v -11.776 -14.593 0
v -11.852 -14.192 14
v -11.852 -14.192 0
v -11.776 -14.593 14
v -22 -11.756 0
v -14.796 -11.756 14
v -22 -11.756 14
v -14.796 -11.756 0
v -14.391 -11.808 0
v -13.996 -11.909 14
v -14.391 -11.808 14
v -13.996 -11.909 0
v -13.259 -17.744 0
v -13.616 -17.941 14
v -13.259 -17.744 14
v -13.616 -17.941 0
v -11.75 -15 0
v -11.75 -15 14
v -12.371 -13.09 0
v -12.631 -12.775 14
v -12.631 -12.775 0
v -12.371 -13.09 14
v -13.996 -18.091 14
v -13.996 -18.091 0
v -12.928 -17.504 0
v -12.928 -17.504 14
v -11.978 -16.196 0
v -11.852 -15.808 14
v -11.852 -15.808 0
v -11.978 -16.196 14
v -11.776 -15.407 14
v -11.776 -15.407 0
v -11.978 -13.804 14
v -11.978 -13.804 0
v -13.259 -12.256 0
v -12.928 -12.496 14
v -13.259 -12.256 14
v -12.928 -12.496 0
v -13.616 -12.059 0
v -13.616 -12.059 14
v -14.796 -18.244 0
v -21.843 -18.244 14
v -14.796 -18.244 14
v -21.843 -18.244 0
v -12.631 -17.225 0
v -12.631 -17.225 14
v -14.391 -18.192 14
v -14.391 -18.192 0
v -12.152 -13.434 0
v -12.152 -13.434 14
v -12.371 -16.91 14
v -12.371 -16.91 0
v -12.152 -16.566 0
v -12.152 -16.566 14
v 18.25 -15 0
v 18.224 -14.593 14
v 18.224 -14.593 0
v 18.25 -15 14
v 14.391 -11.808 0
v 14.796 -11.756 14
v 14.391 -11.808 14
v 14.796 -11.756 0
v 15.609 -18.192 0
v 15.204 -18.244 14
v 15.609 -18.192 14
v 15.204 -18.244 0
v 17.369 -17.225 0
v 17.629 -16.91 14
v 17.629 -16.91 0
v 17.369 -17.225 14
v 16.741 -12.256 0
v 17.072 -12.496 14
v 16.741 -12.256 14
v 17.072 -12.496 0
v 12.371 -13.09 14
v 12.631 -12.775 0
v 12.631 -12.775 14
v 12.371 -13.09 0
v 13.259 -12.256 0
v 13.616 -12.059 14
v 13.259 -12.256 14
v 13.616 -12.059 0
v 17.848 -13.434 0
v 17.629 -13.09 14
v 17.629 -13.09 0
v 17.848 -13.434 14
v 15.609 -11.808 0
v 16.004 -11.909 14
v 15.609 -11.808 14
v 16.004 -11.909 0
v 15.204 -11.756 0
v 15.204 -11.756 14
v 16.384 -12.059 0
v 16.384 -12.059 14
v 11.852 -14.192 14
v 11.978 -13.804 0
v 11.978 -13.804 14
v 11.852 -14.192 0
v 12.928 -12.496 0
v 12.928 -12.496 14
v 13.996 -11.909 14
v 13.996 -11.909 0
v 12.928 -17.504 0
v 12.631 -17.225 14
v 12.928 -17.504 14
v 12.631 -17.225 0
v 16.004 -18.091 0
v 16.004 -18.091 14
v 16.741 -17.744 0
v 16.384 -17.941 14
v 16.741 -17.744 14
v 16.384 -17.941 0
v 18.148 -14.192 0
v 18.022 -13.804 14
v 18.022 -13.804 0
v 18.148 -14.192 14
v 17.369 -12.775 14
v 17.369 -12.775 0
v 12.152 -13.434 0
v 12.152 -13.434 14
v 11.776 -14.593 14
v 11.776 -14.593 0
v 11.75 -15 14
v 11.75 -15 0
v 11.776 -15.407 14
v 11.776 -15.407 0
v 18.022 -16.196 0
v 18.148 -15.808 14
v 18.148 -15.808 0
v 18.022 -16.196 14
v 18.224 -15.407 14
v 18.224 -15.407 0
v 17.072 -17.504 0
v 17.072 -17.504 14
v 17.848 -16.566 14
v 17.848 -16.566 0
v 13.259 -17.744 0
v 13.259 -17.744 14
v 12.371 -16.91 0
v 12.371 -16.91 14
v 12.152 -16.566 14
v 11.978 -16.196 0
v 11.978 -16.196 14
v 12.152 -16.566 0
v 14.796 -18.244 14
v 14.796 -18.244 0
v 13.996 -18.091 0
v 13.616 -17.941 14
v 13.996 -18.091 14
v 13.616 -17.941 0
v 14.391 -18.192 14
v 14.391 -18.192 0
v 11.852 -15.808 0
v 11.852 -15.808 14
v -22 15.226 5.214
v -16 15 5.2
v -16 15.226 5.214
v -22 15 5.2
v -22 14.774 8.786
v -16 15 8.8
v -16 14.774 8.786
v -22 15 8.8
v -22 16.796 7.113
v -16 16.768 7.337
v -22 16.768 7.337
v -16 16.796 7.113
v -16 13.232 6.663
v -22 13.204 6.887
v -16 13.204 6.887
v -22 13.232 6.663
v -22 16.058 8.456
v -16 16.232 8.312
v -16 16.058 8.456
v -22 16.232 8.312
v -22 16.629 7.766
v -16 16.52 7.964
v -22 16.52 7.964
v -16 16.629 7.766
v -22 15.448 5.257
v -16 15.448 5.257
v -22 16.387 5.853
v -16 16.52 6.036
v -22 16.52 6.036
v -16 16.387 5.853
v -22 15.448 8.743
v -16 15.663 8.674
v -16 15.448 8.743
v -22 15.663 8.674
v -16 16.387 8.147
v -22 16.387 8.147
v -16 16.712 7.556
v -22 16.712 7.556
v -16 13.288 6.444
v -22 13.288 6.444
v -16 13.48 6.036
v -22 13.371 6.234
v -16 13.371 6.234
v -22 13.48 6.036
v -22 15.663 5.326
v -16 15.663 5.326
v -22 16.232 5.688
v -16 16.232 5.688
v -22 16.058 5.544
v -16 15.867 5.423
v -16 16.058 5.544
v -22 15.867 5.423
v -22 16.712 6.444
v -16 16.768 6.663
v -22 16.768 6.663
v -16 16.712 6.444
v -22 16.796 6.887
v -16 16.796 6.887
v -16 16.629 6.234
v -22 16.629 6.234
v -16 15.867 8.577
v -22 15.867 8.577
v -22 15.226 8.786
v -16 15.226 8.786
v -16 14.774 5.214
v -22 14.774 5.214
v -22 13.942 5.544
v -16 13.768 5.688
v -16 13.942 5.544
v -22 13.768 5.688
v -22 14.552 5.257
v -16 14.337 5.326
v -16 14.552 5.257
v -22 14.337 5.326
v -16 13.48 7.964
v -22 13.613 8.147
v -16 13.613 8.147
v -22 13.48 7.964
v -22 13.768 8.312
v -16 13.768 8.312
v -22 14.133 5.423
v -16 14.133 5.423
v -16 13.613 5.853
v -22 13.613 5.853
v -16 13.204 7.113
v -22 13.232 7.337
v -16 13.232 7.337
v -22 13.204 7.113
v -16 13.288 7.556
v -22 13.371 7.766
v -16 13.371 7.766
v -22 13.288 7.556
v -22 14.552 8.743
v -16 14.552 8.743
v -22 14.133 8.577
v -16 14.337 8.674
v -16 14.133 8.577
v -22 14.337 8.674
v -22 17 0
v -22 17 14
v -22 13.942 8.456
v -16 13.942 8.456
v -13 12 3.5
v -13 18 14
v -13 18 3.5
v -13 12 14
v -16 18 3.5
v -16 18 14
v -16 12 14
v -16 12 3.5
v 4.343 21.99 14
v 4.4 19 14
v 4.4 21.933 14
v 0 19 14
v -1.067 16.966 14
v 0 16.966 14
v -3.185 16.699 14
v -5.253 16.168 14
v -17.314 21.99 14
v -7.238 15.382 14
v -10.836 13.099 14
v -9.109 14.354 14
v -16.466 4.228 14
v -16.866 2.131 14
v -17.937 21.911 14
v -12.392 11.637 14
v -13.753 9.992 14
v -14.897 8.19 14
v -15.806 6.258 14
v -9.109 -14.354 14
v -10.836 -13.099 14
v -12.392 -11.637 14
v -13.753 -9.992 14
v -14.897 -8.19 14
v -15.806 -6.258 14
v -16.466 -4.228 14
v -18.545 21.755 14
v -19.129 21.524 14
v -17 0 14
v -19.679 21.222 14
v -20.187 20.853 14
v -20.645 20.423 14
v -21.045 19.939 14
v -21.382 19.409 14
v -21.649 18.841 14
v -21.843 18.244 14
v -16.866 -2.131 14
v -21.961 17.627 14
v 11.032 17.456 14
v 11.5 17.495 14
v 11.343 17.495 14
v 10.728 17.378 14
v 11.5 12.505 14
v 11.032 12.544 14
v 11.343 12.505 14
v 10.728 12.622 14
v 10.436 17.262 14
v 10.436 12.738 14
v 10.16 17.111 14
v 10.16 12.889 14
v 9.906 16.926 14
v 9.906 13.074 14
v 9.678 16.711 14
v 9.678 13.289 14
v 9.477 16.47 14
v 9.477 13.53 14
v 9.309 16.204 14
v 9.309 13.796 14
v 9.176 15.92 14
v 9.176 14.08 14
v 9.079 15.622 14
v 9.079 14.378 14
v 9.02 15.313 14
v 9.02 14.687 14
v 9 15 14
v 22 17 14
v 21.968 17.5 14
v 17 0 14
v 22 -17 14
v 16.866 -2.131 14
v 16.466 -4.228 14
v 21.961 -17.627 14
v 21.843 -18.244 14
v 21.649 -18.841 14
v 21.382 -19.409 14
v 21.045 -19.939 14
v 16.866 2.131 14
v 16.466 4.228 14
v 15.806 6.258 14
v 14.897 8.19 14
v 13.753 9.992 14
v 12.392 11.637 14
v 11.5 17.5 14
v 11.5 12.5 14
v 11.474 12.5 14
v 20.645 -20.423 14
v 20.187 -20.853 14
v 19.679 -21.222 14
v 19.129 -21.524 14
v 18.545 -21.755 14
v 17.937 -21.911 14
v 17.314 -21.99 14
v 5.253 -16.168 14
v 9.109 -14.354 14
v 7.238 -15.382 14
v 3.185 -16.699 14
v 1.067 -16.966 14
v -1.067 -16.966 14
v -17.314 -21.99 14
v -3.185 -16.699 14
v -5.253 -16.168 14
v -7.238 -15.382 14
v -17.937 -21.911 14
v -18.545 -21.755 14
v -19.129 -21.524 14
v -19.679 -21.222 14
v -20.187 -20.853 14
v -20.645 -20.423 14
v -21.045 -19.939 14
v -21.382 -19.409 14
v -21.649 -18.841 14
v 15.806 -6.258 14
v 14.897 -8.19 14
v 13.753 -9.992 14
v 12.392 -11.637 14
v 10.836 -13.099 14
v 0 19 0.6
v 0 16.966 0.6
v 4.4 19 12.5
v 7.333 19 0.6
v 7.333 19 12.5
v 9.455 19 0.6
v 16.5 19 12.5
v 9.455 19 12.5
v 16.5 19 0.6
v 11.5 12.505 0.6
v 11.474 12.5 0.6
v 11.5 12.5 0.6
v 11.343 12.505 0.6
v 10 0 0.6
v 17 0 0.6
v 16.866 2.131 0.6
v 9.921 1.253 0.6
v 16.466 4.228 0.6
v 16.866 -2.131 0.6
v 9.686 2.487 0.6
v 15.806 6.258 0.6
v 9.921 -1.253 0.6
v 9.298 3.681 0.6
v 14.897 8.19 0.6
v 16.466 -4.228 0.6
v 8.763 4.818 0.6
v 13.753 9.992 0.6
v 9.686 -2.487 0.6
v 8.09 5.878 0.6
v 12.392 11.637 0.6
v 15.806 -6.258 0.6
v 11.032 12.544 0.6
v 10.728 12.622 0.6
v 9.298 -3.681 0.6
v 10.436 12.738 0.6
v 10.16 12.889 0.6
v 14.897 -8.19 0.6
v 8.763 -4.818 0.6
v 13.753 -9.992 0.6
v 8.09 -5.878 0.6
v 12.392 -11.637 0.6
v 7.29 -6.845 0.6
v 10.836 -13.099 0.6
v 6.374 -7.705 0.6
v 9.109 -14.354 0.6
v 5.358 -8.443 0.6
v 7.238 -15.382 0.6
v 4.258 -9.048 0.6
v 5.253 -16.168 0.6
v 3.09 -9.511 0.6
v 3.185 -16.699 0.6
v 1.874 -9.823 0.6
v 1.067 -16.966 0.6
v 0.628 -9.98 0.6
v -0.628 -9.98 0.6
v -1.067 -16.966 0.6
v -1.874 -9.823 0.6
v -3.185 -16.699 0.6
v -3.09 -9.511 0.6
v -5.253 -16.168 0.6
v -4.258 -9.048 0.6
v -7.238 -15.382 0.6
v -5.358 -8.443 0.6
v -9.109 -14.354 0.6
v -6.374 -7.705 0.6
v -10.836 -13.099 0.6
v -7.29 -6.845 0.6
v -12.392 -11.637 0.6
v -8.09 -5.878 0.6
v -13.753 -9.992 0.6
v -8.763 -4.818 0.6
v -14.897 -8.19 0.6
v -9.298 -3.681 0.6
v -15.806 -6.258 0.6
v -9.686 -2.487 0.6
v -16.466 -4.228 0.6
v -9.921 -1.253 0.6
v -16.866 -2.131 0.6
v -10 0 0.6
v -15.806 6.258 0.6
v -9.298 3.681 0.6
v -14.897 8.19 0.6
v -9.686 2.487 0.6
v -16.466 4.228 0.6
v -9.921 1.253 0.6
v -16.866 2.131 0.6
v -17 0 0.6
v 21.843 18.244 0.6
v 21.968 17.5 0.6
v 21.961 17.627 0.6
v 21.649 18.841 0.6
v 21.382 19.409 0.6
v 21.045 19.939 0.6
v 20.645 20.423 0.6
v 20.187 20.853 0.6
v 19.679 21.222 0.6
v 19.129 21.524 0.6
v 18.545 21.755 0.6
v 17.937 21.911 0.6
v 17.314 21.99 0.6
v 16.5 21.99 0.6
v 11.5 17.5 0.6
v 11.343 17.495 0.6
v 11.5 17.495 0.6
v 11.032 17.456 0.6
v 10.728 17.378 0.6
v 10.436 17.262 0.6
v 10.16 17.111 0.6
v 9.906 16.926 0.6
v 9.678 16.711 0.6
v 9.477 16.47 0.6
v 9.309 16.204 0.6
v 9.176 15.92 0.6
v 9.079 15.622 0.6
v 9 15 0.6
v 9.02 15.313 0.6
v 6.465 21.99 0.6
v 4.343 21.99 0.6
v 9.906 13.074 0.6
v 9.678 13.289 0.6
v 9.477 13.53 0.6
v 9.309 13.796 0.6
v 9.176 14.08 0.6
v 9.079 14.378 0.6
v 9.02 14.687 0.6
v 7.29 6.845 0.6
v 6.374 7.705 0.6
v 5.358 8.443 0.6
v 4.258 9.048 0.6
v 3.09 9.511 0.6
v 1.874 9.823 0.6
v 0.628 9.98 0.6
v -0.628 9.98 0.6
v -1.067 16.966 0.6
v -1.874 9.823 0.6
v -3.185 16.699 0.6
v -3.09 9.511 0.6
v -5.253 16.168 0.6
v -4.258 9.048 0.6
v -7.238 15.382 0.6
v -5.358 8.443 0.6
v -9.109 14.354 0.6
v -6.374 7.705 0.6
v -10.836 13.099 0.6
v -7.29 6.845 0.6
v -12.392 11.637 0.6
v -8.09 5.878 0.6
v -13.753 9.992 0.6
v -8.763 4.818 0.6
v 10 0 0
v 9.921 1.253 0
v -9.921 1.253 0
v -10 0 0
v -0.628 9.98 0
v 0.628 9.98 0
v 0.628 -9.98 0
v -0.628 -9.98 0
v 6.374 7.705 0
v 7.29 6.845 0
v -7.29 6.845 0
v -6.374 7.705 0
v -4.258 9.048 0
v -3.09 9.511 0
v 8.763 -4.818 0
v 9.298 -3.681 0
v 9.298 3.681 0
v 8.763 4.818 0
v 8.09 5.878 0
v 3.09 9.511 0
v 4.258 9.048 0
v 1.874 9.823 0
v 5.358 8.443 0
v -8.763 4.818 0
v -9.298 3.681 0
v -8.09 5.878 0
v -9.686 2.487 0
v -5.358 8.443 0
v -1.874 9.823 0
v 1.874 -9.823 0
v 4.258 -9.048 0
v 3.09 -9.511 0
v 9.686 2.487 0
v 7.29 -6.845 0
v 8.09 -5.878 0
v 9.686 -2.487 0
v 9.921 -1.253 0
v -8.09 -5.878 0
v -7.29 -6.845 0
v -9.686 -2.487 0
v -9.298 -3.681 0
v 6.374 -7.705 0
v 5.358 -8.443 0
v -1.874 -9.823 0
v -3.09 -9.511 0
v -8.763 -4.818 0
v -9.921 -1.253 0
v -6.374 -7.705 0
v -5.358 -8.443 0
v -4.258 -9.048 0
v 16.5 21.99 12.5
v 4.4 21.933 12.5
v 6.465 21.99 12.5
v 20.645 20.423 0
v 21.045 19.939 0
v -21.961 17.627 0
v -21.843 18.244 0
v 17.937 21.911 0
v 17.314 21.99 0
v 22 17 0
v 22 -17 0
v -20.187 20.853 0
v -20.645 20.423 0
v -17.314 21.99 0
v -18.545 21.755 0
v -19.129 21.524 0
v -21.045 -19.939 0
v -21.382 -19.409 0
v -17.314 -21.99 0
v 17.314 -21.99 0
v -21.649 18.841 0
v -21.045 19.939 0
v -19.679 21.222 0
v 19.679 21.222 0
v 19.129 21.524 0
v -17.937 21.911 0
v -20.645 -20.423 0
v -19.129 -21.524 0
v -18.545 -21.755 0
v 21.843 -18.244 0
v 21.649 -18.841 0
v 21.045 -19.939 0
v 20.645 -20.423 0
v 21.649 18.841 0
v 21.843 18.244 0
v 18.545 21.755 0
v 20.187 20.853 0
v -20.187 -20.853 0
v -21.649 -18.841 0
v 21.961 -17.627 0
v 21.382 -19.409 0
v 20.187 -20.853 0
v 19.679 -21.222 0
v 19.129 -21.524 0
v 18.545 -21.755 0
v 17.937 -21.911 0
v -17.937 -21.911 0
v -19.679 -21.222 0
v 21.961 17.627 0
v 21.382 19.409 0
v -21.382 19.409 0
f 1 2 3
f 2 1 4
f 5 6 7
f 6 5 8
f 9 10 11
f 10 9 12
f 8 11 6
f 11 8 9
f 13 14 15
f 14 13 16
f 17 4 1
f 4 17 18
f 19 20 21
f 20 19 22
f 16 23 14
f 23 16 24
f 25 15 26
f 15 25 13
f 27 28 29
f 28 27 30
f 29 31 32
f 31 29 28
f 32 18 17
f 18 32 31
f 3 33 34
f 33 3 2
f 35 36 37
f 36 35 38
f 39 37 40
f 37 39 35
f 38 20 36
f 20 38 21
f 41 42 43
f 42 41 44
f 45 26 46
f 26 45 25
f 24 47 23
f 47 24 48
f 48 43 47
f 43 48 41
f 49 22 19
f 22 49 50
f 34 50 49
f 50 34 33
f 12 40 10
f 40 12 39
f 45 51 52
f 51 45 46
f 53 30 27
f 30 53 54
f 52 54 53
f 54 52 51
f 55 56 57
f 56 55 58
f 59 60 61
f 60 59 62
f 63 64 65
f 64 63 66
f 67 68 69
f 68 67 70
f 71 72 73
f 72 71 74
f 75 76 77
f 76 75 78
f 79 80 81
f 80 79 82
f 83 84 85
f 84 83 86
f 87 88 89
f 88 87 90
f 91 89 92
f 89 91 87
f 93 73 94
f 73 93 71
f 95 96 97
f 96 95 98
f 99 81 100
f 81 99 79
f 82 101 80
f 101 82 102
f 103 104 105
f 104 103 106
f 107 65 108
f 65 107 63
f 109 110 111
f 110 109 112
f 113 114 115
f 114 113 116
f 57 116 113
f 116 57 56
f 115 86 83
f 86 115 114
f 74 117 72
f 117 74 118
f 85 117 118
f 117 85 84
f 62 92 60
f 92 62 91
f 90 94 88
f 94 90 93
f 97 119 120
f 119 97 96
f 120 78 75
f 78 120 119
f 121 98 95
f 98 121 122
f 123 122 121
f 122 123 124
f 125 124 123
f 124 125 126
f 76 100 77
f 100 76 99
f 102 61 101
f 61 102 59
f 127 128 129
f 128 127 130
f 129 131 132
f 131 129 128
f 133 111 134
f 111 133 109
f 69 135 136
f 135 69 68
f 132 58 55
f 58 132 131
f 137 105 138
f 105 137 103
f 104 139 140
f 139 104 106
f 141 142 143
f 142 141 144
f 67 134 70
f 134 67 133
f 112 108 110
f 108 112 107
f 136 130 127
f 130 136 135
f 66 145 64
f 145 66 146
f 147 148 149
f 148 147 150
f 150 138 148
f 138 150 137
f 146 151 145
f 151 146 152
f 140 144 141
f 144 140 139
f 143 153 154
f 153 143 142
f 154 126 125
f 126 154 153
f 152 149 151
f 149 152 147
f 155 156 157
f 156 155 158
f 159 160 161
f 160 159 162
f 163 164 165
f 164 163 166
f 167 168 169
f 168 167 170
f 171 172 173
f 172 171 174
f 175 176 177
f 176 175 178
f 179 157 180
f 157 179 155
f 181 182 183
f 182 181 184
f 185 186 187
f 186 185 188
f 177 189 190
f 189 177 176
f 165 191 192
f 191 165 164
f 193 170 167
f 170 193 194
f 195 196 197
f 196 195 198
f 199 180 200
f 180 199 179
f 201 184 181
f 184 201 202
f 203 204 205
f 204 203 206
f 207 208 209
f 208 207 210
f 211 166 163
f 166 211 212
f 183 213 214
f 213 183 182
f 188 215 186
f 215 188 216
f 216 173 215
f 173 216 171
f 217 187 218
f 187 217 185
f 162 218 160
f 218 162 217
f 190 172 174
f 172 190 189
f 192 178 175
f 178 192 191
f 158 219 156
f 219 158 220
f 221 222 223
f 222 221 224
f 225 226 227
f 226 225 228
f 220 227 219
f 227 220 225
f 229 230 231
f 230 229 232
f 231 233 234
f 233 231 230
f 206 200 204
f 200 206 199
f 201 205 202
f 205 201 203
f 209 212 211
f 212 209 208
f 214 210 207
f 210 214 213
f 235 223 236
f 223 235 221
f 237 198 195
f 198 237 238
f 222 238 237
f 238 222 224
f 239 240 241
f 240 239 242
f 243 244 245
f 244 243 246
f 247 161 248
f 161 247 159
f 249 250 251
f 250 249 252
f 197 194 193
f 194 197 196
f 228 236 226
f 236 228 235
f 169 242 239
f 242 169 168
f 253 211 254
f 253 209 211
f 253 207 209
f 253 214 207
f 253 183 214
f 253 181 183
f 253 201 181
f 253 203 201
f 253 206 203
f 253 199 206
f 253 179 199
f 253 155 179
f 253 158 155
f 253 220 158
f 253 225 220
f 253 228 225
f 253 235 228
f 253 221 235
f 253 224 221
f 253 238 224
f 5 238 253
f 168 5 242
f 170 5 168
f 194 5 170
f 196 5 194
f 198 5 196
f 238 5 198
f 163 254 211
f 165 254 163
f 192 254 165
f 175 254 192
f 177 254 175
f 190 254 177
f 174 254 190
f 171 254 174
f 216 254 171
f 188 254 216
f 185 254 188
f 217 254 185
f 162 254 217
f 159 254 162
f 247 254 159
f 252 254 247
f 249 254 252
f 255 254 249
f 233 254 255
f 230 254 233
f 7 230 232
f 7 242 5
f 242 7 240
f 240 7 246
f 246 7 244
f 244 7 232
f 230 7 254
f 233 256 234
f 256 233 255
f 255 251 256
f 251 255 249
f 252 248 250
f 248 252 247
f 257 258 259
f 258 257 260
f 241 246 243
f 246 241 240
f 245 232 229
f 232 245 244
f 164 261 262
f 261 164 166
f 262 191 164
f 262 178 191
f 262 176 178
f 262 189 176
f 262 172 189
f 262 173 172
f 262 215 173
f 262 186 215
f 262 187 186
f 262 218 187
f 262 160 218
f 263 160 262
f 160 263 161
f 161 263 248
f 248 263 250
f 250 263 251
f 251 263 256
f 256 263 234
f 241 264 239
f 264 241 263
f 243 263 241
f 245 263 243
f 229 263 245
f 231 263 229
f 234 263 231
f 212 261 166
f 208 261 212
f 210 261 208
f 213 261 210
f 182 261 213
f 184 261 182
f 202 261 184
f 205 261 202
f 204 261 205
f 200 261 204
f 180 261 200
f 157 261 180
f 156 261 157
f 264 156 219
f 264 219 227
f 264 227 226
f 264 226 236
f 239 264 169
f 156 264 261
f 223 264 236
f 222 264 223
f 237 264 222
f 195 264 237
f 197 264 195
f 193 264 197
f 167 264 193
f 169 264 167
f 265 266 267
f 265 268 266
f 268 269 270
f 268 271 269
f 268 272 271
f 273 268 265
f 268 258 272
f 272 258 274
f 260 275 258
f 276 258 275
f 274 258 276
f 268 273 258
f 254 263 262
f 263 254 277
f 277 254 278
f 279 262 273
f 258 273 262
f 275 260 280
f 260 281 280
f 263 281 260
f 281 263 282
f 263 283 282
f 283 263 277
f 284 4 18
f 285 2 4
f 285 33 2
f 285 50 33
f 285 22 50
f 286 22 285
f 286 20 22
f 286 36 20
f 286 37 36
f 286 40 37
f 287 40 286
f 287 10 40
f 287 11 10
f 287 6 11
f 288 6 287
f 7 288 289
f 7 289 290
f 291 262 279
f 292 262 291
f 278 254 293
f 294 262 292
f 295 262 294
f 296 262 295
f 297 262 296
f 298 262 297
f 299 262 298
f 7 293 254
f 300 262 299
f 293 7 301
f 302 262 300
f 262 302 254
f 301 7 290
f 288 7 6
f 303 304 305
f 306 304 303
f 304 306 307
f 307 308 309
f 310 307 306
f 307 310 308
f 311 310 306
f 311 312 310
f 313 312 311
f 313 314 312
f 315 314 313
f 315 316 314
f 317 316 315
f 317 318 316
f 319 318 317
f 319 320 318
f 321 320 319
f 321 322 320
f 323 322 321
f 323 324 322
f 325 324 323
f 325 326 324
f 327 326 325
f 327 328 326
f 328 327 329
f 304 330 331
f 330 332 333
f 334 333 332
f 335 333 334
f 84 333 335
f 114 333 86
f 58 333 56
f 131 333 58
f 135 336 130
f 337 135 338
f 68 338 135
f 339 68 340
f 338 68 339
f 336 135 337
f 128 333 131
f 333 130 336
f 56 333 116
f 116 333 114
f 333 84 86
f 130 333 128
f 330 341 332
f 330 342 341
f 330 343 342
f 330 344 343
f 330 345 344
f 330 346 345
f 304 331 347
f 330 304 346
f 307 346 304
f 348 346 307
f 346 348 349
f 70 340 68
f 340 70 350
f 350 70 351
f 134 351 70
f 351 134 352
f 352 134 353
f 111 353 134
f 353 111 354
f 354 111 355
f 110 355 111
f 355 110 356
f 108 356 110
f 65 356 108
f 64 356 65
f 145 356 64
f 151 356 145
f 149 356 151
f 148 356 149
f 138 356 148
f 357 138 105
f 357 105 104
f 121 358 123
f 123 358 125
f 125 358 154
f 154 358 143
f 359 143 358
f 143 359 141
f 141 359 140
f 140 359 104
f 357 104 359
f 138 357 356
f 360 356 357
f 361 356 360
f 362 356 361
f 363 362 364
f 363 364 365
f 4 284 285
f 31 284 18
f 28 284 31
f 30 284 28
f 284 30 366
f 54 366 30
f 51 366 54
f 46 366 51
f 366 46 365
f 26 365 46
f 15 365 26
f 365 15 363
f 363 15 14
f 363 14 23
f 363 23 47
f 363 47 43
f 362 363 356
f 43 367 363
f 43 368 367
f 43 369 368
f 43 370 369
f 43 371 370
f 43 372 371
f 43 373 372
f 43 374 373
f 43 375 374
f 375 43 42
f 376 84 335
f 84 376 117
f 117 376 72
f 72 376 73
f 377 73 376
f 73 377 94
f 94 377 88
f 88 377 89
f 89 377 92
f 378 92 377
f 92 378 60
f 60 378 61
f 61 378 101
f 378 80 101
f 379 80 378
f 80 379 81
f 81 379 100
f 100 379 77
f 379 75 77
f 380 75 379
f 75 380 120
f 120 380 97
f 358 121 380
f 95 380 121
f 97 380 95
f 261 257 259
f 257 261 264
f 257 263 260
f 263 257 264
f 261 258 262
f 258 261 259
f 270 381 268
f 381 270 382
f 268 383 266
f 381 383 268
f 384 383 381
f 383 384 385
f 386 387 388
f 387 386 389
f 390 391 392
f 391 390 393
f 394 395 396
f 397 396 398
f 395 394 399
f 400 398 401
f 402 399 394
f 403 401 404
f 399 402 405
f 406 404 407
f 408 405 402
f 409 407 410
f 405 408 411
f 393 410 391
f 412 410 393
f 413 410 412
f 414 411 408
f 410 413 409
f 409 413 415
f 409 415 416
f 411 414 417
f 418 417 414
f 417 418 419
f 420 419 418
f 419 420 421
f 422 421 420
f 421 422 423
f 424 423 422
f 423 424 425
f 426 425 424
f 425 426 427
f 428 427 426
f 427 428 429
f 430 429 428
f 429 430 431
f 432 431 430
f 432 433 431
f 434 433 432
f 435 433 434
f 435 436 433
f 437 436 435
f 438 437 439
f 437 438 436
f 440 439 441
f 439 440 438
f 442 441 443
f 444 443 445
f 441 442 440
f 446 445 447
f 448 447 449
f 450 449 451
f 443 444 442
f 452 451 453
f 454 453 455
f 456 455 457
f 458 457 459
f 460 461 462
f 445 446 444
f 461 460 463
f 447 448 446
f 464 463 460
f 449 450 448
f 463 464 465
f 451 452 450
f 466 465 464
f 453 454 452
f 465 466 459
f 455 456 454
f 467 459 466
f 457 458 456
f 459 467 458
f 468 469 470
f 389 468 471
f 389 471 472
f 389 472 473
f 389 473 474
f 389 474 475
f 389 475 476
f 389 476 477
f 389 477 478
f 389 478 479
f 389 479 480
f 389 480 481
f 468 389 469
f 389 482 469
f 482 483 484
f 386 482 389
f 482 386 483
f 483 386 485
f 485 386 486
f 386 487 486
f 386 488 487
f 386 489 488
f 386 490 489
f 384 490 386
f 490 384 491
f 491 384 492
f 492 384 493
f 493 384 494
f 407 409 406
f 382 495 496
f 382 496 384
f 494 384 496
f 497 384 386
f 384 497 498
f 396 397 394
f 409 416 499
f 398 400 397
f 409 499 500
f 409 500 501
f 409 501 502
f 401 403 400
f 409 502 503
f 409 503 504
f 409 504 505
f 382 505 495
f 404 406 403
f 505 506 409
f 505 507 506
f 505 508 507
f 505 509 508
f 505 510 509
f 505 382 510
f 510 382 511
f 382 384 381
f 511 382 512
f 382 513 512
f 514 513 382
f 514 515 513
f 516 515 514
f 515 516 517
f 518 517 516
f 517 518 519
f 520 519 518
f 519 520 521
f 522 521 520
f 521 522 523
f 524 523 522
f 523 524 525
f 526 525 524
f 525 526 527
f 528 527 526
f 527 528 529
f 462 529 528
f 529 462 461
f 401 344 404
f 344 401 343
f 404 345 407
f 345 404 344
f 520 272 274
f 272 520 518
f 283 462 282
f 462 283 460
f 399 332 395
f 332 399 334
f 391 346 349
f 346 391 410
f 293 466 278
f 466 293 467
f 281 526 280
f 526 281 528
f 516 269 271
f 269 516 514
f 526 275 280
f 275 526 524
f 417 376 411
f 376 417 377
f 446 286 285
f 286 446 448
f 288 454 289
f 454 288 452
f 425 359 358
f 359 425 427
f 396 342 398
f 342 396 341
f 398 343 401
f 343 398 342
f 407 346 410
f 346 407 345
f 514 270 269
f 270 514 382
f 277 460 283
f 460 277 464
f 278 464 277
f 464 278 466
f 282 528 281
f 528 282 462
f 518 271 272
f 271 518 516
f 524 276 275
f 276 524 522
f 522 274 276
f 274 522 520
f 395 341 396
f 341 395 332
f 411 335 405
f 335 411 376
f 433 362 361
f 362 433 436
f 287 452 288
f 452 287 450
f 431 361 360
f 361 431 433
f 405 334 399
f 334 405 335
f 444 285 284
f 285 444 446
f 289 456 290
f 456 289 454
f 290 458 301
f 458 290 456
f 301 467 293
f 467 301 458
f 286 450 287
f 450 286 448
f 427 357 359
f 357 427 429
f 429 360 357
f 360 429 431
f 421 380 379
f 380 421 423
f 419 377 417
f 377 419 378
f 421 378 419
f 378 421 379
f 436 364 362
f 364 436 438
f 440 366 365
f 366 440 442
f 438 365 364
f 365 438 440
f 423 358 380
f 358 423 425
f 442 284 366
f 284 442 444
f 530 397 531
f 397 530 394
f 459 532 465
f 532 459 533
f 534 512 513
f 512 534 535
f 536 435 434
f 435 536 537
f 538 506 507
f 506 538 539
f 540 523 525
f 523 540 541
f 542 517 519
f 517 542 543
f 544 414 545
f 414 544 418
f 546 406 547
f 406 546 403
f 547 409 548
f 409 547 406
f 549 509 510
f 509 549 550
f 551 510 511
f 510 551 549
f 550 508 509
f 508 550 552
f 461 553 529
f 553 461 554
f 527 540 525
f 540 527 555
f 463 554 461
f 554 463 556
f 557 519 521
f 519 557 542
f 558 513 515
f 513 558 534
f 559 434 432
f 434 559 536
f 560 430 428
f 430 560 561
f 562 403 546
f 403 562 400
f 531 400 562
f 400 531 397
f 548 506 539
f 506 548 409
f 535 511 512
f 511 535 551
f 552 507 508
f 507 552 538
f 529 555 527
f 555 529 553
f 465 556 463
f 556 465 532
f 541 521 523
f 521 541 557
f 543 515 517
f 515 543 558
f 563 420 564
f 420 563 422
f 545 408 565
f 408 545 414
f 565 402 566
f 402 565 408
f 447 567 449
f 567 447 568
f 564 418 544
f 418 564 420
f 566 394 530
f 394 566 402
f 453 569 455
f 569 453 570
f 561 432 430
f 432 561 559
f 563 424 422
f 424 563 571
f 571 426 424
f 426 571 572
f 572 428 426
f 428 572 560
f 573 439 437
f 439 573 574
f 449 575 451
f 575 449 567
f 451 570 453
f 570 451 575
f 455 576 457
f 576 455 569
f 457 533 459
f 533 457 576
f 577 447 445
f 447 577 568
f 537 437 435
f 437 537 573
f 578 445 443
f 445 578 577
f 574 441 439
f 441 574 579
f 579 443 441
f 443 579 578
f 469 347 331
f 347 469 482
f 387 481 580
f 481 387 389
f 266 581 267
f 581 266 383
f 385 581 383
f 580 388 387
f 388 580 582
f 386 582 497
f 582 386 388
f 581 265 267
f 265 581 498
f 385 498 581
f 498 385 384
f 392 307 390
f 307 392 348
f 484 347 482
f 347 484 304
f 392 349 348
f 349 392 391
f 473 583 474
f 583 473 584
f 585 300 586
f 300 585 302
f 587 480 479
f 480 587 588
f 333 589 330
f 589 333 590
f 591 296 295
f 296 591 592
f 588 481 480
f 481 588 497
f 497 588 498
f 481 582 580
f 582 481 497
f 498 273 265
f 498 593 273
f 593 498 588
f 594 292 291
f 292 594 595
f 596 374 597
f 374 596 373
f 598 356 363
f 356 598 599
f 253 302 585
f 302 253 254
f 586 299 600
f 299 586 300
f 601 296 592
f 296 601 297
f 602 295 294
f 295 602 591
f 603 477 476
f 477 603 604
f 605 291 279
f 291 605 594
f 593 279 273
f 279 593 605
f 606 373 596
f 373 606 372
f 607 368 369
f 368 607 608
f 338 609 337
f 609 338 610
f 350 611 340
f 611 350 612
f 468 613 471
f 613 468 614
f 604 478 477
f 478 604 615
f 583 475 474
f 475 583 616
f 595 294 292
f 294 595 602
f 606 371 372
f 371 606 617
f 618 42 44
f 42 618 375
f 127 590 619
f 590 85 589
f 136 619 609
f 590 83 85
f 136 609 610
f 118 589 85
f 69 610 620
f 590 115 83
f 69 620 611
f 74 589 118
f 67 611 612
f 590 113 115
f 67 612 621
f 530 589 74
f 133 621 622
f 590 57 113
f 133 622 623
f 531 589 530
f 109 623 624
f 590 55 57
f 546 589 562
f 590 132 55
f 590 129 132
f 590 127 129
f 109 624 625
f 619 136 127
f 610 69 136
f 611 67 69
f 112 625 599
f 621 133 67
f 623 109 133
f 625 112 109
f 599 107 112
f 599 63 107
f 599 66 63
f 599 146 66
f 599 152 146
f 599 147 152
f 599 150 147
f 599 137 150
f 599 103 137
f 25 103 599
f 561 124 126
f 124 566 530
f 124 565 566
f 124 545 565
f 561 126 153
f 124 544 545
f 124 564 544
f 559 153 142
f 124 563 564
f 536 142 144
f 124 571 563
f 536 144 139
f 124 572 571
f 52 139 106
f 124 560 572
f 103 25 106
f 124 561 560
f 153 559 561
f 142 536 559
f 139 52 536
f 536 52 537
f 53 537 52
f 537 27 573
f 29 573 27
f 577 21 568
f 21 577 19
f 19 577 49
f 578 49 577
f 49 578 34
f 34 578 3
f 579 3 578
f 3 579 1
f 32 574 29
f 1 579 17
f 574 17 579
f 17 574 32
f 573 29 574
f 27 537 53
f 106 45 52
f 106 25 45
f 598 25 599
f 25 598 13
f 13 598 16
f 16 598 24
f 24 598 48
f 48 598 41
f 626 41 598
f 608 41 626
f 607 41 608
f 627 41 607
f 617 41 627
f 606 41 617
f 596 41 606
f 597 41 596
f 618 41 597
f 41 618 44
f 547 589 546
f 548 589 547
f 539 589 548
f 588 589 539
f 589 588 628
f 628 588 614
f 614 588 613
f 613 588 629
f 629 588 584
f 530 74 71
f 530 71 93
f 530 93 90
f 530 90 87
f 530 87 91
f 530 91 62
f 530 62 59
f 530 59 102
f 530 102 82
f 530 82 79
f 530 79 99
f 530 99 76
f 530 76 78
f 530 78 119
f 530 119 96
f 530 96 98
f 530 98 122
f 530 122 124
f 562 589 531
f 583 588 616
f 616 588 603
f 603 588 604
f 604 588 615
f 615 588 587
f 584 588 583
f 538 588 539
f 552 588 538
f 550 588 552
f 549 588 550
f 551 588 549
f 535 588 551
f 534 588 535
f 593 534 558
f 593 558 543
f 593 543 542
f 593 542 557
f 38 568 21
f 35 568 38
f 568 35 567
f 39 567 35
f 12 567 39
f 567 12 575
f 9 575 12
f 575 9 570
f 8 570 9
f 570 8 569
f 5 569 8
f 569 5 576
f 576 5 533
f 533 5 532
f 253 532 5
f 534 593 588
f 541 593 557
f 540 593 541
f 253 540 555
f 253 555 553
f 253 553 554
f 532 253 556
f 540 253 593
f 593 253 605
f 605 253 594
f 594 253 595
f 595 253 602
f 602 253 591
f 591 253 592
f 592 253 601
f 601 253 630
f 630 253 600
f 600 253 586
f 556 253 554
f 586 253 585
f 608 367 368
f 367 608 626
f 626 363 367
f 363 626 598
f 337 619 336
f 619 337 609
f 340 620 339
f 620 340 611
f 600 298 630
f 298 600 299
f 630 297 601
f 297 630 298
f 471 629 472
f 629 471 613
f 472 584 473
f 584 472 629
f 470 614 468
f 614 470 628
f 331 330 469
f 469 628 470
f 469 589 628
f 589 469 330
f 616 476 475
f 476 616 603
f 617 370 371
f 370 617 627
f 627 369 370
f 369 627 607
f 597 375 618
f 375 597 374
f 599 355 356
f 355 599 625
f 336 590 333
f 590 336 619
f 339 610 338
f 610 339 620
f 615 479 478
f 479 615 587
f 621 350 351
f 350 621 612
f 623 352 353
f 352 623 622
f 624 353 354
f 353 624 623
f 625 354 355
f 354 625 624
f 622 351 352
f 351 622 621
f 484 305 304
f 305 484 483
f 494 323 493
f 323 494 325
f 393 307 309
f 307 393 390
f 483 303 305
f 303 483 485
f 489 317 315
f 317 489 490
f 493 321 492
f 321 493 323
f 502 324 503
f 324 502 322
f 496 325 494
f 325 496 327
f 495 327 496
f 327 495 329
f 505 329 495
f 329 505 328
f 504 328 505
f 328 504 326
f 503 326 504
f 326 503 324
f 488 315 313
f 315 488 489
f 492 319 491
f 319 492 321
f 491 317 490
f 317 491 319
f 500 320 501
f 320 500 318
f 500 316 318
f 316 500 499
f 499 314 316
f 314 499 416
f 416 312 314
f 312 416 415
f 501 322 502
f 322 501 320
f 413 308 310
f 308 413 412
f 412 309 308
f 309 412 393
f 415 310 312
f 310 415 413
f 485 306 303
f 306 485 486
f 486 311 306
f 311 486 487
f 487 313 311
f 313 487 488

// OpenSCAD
$fn = 50;


union() {
	difference() {
		union() {
			translate(v = [0, 0, 0]) {
				rotate(a = [0, 0, 0]) {
					hull() {
						translate(v = [-17.0000000000, 17.0000000000, 0]) {
							rotate(a = [0, 0, 0]) {
								translate(v = [0, 0, 0]) {
									rotate(a = [0, 0, 0]) {
										cylinder(h = 14, r = 5);
									}
								}
							}
						}
						translate(v = [17.0000000000, 17.0000000000, 0]) {
							rotate(a = [0, 0, 0]) {
								translate(v = [0, 0, 0]) {
									rotate(a = [0, 0, 0]) {
										cylinder(h = 14, r = 5);
									}
								}
							}
						}
						translate(v = [-17.0000000000, -17.0000000000, 0]) {
							rotate(a = [0, 0, 0]) {
								translate(v = [0, 0, 0]) {
									rotate(a = [0, 0, 0]) {
										cylinder(h = 14, r = 5);
									}
								}
							}
						}
						translate(v = [17.0000000000, -17.0000000000, 0]) {
							rotate(a = [0, 0, 0]) {
								translate(v = [0, 0, 0]) {
									rotate(a = [0, 0, 0]) {
										cylinder(h = 14, r = 5);
									}
								}
							}
						}
					}
				}
			}
		}
		union() {
			translate(v = [-22.5000000000, -15.0000000000, -125]) {
				rotate(a = [0, 0, 0]) {
					hull() {
						translate(v = [7.5000000000, 0, 0]) {
							rotate(a = [0, 0, 0]) {
								translate(v = [0, 0, 0]) {
									rotate(a = [0, 0, 0]) {
										cylinder(h = 250, r = 3.2500000000);
									}
								}
							}
						}
						translate(v = [-7.5000000000, 0, 0]) {
							rotate(a = [0, 0, 0]) {
								translate(v = [0, 0, 0]) {
									rotate(a = [0, 0, 0]) {
										cylinder(h = 250, r = 3.2500000000);
									}
								}
							}
						}
					}
				}
			}
			translate(v = [15.0000000000, -15.0000000000, -125.0000000000]) {
				rotate(a = [0, 0, 0]) {
					cylinder(h = 250, r = 3.2500000000);
				}
			}
			translate(v = [-22.0000000000, 15.0000000000, 7.0000000000]) {
				rotate(a = [0, 90, 0]) {
					cylinder(h = 9, r = 1.8000000000);
				}
			}
			translate(v = [-16.0000000000, 12.0000000000, 3.5000000000]) {
				rotate(a = [0, 0, 0]) {
					cube(size = [3, 6, 10.5000000000]);
				}
			}
			translate(v = [0.0000000000, 11.0000000000, 0.6000000000]) {
				rotate(a = [0, 0, 0]) {
					cube(size = [11, 8, 16.4000000000]);
				}
			}
			translate(v = [0, 0, 0.6000000000]) {
				rotate(a = [0, 0, 0]) {
					cylinder(h = 16.4000000000, r = 17.0000000000);
				}
			}
			translate(v = [0, 0, -7.0000000000]) {
				rotate(a = [0, 0, 0]) {
					cylinder(h = 14, r = 10.0000000000);
				}
			}
			translate(v = [0.0000000000, 17.5000000000, 0.6000000000]) {
				rotate(a = [0, 0, 0]) {
					cube(size = [22.0000000000, 1.5000000000, 16.4000000000]);
				}
			}
			translate(v = [16.5000000000, 17.5000000000, 0.6000000000]) {
				rotate(a = [0, 0, 0]) {
					cube(size = [5.5000000000, 4.5000000000, 16.4000000000]);
				}
			}
			translate(v = [4.4000000000, 17.5000000000, 12.5000000000]) {
				rotate(a = [0, 0, 0]) {
					cube(size = [17.6000000000, 4.5000000000, 1.5000000000]);
				}
			}
			translate(v = [3.5833333333, 22.7500000000, 0.6000000000]) {
				rotate(a = [0, 0, -45]) {
					cube(size = [7.5000000000, 1.5000000000, 16.4000000000]);
				}
			}
			translate(v = [2.5000000000, 12.5000000000, 0.6000000000]) {
				rotate(a = [0, 0, 0]) {
					cube(size = [9.0000000000, 5, 13.4000000000]);
				}
			}
		}
	}
	union() {
		translate(v = [14, 15, 0]) {
			rotate(a = [0, 0, 0]) {
				hull() {
					translate(v = [2.5000000000, 0, 0]) {
						rotate(a = [0, 0, 0]) {
							translate(v = [0, 0, 0]) {
								rotate(a = [0, 0, 0]) {
									cylinder(h = 14, r = 2.5000000000);
								}
							}
						}
					}
					translate(v = [-2.5000000000, 0, 0]) {
						rotate(a = [0, 0, 0]) {
							translate(v = [0, 0, 0]) {
								rotate(a = [0, 0, 0]) {
									cylinder(h = 14, r = 2.5000000000);
								}
							}
						}
					}
				}
			}
		}
	}
}
